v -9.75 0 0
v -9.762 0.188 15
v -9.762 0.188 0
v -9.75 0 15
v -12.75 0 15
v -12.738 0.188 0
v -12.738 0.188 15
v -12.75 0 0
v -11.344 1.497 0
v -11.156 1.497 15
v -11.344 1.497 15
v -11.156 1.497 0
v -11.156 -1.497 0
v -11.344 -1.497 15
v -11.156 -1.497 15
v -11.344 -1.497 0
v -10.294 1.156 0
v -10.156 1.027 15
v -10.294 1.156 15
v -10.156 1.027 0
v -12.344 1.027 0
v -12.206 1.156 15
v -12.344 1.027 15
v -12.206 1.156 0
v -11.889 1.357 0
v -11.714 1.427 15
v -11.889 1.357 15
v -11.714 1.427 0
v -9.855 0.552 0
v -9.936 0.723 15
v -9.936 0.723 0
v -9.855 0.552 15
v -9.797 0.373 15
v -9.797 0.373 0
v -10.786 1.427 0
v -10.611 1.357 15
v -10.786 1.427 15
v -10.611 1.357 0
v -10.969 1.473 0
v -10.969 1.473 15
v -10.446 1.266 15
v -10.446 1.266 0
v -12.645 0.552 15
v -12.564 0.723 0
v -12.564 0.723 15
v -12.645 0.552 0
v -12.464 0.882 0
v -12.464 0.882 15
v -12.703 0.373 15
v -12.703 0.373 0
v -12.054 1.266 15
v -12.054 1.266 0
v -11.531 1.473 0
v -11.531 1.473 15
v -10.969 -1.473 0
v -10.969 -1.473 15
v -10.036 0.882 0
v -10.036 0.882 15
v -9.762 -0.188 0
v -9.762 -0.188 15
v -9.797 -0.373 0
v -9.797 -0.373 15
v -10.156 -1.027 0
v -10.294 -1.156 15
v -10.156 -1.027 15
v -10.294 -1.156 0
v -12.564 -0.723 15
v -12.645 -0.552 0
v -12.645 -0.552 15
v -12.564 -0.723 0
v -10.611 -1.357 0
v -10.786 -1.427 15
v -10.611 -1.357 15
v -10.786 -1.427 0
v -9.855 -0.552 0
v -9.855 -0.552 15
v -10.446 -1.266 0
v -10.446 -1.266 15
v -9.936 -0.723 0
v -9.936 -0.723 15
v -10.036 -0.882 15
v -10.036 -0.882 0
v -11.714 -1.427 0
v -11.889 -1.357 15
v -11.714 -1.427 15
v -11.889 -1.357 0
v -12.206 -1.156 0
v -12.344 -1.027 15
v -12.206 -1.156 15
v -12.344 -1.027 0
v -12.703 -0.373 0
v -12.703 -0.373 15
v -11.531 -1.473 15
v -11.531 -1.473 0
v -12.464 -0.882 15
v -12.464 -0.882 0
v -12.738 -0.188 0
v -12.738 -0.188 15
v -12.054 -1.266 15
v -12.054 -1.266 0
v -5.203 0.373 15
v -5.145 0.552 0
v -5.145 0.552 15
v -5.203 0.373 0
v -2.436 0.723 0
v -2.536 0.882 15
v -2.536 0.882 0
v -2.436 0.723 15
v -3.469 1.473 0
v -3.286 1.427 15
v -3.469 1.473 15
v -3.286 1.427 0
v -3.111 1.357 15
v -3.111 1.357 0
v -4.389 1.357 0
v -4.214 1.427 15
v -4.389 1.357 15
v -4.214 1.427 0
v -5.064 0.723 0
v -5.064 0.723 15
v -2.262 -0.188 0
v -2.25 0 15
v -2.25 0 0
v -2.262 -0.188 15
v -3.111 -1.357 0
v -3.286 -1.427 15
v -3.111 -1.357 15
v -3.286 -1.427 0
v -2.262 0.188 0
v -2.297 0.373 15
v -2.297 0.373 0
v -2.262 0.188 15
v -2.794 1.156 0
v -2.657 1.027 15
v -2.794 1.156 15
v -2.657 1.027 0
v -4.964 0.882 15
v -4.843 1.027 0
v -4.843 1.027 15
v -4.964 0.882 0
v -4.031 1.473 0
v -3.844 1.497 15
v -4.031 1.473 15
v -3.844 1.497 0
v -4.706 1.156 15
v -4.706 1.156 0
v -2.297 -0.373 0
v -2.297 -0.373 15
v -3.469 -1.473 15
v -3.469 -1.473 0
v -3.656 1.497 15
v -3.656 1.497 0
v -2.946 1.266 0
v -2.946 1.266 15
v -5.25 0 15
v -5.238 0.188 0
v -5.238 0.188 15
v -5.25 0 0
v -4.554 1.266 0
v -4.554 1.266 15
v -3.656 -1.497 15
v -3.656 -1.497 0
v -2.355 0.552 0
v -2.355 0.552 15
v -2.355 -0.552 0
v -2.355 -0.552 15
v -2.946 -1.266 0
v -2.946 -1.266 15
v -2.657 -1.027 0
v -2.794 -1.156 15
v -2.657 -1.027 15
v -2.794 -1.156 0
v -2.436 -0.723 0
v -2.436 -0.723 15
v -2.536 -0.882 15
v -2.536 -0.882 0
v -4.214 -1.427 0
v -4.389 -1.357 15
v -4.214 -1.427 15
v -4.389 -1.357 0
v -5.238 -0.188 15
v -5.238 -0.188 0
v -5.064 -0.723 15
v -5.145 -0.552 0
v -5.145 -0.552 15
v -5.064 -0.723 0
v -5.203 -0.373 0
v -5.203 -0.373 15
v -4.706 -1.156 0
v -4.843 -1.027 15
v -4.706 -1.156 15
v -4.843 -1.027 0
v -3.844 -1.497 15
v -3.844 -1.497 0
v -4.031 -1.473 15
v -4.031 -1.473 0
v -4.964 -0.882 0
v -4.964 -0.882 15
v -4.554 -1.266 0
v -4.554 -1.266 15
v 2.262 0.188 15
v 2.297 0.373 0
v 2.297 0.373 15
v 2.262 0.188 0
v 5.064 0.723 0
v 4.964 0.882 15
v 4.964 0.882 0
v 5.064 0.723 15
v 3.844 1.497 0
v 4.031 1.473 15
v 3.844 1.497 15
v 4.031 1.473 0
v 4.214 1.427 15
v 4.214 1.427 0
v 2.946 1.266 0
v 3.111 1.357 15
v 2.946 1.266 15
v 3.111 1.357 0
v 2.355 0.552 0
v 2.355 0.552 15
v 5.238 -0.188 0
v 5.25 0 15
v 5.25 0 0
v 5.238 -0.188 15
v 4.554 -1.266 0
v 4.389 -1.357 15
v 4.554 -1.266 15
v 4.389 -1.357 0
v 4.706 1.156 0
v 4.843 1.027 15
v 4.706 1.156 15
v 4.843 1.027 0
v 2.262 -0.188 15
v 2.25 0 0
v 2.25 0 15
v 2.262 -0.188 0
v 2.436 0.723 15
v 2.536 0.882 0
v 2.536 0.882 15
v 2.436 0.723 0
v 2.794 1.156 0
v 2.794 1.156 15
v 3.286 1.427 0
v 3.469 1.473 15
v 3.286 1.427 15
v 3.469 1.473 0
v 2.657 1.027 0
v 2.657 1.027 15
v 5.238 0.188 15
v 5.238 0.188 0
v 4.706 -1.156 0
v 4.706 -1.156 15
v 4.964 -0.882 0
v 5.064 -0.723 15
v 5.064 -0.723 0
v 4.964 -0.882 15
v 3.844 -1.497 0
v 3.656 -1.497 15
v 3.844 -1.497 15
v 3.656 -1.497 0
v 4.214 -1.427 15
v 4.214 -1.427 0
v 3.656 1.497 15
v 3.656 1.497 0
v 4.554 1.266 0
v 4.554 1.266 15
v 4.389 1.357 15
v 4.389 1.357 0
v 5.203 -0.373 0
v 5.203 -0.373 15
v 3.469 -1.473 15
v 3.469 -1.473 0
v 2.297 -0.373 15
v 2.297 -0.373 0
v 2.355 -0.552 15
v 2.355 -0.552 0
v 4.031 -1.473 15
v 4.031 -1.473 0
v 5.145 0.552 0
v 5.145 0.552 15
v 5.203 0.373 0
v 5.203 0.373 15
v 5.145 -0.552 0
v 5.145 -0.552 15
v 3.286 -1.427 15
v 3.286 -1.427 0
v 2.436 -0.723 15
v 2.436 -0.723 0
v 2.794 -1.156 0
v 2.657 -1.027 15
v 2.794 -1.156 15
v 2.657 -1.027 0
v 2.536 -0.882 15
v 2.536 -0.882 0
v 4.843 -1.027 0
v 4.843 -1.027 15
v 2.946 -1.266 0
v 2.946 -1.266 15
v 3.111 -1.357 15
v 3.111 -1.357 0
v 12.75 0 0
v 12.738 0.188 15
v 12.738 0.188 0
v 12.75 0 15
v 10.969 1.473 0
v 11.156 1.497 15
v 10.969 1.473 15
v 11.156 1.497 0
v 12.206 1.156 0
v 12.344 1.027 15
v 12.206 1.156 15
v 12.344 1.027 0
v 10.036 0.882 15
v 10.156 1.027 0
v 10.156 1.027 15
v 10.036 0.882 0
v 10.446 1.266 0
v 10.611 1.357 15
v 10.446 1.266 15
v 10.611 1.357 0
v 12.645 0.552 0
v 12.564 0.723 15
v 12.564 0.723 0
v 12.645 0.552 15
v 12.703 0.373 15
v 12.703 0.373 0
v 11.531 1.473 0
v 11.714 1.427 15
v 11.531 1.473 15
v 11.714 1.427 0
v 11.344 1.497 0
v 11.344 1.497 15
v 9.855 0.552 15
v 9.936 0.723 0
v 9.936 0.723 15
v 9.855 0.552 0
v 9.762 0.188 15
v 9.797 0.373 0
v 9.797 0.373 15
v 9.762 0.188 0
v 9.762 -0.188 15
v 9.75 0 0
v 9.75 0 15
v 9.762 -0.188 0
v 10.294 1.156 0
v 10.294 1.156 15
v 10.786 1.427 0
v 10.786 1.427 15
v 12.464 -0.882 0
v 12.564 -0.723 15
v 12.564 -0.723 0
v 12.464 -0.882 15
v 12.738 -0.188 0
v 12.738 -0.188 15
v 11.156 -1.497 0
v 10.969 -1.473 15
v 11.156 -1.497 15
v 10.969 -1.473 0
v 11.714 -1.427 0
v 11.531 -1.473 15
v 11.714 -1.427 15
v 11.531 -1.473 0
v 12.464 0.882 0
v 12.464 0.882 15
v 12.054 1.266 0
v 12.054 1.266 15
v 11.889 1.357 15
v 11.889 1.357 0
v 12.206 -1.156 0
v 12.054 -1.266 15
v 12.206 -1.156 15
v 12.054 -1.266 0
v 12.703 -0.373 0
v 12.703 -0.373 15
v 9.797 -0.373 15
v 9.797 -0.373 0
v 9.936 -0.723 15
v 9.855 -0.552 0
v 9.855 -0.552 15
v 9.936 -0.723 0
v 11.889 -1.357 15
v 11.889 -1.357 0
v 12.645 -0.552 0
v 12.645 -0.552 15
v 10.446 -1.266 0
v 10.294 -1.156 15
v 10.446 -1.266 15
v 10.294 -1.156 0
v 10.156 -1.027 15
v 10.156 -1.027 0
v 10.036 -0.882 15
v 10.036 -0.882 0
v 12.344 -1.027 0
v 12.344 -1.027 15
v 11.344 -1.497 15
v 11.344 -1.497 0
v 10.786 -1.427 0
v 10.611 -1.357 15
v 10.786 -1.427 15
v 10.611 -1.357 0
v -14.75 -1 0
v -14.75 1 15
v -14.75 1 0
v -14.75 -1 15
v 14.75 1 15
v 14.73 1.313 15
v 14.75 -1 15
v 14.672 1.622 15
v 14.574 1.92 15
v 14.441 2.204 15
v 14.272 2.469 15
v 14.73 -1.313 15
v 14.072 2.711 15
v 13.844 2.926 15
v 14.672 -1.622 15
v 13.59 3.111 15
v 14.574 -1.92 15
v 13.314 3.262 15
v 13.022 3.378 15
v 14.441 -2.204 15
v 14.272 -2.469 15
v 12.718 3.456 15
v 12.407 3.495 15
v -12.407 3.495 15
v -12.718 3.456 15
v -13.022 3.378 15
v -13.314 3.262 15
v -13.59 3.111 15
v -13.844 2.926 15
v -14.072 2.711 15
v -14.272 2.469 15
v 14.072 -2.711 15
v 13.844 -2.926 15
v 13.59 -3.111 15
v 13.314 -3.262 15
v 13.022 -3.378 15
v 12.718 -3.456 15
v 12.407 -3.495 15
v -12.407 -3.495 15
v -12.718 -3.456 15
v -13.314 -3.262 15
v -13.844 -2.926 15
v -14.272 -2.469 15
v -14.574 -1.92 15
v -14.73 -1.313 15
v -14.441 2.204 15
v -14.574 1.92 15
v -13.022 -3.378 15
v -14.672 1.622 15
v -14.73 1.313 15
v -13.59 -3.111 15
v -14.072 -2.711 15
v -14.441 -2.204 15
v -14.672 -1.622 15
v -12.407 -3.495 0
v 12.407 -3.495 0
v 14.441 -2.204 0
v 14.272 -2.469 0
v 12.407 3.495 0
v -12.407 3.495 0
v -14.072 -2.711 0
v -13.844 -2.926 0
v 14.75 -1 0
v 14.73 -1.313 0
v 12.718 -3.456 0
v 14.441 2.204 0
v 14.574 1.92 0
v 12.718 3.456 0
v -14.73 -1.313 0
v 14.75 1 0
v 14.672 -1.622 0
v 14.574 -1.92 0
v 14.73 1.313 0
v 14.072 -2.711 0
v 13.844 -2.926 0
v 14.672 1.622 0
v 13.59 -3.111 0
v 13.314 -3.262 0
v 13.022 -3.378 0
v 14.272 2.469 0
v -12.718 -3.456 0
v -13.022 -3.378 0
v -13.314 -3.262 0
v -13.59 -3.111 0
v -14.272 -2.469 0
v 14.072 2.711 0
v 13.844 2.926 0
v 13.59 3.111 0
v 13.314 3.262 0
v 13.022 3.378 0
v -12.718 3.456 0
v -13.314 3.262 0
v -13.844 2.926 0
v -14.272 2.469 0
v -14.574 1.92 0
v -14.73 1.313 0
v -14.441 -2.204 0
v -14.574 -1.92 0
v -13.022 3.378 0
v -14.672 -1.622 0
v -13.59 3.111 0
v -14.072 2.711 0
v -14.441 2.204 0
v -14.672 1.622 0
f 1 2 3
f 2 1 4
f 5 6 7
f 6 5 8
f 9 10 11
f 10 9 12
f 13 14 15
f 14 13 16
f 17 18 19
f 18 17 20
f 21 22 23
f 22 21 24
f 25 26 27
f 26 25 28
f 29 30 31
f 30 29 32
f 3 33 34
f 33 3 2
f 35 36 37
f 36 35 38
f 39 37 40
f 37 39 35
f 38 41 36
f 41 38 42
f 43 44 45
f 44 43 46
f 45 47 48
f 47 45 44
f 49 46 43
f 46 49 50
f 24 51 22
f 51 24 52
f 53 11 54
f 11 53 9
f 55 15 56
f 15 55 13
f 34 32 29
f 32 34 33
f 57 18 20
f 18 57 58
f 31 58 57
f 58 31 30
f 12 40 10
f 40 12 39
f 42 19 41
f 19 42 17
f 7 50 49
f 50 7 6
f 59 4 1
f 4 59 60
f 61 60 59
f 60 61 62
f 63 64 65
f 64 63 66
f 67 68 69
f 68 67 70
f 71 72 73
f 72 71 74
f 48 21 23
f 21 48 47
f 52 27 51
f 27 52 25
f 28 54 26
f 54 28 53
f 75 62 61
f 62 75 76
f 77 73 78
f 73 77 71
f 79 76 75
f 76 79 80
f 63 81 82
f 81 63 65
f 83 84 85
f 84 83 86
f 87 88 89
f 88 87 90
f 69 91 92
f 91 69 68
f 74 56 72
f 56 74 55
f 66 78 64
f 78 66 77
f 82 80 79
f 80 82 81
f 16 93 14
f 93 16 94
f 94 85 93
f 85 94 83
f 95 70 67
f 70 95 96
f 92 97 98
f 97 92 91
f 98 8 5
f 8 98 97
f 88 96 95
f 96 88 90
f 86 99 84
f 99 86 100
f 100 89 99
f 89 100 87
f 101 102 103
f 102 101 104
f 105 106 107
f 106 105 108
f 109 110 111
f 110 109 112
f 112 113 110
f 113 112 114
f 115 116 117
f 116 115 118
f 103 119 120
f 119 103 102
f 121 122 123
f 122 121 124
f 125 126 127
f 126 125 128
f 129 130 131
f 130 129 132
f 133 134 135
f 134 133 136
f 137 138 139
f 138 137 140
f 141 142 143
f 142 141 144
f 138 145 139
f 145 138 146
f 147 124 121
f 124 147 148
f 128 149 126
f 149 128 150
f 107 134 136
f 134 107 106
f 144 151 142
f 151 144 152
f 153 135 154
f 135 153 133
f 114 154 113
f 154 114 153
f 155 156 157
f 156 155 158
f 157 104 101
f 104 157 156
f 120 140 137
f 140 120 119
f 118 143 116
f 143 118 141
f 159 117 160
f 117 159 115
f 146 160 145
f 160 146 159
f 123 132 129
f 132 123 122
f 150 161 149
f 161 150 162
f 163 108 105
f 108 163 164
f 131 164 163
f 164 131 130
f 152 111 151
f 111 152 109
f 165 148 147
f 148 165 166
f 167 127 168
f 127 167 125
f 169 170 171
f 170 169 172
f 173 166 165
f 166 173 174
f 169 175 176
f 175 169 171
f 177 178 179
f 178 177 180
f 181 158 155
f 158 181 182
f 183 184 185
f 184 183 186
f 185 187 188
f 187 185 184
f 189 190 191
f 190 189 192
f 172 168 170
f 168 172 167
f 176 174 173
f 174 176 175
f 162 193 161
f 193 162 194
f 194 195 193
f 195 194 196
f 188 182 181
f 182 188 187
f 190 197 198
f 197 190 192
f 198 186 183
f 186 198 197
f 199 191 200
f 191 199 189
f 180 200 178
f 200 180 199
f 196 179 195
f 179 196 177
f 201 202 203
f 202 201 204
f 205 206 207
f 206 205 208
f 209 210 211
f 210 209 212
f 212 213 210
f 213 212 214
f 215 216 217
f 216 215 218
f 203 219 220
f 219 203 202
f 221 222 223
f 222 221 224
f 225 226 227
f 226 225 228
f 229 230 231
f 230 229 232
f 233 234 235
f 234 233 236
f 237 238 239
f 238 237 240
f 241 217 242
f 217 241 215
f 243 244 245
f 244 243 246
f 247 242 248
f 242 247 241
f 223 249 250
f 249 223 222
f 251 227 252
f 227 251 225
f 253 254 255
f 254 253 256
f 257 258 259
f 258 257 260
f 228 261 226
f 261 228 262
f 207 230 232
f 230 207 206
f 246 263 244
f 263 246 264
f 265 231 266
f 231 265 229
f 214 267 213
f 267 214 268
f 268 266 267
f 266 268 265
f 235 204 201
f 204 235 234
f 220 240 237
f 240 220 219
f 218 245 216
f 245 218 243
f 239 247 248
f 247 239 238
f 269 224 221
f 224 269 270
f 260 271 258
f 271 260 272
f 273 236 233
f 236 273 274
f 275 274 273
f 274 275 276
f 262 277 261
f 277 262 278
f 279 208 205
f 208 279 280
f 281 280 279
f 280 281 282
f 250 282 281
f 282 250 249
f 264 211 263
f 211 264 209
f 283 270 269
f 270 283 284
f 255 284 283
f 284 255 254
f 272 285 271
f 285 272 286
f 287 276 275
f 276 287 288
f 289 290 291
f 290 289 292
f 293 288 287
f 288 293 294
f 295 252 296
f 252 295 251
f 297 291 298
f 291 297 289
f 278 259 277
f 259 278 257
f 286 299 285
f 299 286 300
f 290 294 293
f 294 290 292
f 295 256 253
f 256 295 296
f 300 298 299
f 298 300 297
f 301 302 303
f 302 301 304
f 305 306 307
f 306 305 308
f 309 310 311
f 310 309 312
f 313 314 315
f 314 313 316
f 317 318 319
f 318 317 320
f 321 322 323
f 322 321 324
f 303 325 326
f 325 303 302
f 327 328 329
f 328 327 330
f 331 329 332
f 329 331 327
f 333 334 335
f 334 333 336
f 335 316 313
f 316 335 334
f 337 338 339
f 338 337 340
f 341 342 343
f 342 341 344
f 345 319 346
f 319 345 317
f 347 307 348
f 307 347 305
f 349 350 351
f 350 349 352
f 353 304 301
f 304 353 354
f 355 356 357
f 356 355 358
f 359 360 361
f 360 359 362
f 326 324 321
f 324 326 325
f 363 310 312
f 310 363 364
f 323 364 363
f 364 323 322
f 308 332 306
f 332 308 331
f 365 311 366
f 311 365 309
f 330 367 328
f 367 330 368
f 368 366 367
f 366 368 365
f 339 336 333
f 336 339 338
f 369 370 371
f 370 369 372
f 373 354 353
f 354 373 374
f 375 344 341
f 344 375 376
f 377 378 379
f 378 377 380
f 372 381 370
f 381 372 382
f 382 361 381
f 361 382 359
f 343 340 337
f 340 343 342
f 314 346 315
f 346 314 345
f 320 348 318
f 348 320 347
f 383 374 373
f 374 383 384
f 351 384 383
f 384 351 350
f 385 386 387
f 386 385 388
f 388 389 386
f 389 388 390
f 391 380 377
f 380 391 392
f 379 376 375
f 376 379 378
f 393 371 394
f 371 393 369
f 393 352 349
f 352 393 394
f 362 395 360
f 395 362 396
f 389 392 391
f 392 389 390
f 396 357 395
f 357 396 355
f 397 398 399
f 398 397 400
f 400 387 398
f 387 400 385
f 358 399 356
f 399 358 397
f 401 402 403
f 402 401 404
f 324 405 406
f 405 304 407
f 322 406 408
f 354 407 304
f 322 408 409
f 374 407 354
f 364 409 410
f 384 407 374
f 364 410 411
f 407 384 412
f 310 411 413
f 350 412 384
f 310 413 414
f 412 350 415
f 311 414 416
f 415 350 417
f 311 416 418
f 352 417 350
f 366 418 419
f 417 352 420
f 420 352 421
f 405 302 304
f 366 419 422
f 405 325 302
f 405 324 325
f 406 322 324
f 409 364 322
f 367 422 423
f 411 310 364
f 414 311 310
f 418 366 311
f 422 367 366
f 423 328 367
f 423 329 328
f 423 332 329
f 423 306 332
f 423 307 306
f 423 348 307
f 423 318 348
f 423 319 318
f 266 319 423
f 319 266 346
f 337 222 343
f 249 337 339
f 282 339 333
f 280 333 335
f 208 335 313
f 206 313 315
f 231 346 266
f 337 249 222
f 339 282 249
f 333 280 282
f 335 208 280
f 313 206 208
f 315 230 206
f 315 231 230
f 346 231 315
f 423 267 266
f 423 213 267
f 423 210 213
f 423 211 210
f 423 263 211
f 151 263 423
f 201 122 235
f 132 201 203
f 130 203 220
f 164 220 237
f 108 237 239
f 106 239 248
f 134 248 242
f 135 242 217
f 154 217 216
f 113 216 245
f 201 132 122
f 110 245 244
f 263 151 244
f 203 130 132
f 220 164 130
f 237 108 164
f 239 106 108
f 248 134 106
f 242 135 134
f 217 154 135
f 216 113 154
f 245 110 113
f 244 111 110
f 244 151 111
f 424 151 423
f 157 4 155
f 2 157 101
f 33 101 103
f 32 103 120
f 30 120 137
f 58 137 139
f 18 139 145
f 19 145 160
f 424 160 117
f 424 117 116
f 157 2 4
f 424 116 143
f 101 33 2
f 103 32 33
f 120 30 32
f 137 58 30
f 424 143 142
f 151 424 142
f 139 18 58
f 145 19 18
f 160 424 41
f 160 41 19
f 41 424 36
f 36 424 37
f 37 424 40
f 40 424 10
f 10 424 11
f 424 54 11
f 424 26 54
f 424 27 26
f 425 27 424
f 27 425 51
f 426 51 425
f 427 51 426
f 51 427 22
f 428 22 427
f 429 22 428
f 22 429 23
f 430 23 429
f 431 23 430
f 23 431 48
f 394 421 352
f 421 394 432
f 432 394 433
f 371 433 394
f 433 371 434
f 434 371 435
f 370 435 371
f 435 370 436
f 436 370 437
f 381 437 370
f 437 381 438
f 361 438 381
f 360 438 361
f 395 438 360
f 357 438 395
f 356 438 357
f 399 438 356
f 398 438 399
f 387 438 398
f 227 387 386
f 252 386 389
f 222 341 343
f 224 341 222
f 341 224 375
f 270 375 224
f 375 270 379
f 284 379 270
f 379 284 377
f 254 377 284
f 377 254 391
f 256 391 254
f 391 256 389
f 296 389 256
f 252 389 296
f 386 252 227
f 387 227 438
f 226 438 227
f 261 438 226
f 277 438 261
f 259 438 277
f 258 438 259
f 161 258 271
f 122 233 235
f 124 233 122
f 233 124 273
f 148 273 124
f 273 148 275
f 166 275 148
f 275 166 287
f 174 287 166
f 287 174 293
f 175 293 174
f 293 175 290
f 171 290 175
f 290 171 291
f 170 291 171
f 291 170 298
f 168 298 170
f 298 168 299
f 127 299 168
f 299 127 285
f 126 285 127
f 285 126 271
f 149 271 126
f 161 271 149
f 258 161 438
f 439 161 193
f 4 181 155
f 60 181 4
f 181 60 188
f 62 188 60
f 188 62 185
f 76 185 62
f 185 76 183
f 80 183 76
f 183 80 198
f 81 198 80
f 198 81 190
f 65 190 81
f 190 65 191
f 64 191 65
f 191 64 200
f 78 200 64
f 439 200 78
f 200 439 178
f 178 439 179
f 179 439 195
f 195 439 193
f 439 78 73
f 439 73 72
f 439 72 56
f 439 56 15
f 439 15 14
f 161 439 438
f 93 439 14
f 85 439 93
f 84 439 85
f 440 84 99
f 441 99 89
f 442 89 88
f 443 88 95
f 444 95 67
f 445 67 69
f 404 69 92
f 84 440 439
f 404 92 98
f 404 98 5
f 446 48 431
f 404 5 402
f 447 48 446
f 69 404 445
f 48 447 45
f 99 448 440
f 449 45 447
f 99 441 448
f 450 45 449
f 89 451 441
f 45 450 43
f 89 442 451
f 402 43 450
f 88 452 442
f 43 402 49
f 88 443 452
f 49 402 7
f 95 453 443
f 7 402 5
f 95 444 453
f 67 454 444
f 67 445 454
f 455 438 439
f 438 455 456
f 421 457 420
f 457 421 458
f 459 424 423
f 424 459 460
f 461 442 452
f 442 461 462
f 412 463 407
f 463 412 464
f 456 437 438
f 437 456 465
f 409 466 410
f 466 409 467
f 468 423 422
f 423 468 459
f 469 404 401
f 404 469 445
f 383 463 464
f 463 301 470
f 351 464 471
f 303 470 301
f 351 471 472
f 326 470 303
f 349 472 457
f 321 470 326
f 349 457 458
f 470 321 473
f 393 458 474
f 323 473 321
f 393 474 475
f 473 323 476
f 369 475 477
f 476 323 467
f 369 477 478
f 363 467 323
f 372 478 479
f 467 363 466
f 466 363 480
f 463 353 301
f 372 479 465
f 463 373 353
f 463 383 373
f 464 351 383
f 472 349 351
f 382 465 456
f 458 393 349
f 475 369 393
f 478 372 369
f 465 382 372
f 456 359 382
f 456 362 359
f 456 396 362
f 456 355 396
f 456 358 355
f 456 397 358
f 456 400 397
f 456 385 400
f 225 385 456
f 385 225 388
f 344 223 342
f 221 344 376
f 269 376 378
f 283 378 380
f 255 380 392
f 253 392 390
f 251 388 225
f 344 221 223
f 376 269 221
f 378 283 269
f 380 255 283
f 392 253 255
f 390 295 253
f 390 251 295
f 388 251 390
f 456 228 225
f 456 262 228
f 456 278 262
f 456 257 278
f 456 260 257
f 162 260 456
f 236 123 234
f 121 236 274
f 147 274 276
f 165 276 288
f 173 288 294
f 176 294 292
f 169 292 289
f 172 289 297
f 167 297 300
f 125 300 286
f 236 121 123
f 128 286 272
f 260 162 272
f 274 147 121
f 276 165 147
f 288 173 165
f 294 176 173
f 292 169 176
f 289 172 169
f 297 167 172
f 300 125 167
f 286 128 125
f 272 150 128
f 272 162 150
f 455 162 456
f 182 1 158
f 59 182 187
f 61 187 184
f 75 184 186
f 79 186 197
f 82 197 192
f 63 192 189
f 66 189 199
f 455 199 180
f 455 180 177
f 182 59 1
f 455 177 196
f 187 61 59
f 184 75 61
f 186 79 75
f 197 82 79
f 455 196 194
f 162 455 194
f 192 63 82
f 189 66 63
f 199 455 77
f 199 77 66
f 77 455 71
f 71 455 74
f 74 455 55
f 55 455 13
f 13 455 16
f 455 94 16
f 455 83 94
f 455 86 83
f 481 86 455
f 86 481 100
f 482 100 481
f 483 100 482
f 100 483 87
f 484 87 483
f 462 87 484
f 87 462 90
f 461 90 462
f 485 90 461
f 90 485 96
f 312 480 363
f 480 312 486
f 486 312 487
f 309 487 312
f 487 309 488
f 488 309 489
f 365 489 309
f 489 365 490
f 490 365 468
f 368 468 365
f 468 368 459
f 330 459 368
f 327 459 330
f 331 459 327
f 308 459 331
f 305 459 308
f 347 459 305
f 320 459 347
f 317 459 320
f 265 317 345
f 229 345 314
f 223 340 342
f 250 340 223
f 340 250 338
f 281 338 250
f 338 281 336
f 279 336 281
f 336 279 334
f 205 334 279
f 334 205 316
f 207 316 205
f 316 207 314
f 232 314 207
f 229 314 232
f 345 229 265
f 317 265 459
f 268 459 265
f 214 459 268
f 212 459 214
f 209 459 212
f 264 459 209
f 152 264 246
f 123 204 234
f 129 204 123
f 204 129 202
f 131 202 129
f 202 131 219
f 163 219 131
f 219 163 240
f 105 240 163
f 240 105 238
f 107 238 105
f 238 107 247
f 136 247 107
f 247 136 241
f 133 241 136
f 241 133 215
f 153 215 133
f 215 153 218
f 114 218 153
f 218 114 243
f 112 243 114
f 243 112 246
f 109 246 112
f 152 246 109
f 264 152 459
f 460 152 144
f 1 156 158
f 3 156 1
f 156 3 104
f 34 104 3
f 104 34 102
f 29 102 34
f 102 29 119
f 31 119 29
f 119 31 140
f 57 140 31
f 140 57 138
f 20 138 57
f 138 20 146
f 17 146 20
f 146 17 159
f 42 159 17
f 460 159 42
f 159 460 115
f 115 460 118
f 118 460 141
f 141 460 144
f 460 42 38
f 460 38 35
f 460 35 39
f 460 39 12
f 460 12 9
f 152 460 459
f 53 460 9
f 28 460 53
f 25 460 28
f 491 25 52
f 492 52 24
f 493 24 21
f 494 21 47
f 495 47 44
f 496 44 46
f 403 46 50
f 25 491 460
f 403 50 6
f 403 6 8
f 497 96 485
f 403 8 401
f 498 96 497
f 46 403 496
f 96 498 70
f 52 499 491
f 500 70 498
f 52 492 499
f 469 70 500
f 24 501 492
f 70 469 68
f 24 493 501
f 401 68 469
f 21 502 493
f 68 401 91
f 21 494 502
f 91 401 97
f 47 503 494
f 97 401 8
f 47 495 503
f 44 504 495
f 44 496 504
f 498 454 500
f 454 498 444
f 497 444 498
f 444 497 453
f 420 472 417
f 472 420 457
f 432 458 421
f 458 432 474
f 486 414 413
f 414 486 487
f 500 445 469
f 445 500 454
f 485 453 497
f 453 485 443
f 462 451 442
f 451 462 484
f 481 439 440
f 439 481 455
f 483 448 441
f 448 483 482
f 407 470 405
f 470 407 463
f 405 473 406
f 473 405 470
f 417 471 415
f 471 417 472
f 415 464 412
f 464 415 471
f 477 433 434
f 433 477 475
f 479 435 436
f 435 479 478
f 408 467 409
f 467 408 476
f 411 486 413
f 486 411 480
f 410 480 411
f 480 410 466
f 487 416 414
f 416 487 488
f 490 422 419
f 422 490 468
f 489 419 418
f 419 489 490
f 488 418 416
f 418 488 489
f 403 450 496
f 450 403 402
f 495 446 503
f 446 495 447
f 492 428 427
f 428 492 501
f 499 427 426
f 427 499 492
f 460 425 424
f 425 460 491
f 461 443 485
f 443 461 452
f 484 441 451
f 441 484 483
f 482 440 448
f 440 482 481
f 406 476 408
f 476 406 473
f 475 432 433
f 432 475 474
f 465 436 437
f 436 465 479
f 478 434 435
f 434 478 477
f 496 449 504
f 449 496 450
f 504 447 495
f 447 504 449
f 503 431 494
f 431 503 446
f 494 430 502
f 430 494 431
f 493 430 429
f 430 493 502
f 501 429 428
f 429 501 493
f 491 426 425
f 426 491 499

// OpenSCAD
$fn = 50;


difference() {
	union() {
		translate(v = [0, 0, 0]) {
			rotate(a = [0, 0, 0]) {
				hull() {
					translate(v = [-12.2500000000, 1.0000000000, 0]) {
						rotate(a = [0, 0, 0]) {
							translate(v = [0, 0, 0]) {
								rotate(a = [0, 0, 0]) {
									cylinder(h = 15, r = 2.5000000000);
								}
							}
						}
					}
					translate(v = [12.2500000000, 1.0000000000, 0]) {
						rotate(a = [0, 0, 0]) {
							translate(v = [0, 0, 0]) {
								rotate(a = [0, 0, 0]) {
									cylinder(h = 15, r = 2.5000000000);
								}
							}
						}
					}
					translate(v = [-12.2500000000, -1.0000000000, 0]) {
						rotate(a = [0, 0, 0]) {
							translate(v = [0, 0, 0]) {
								rotate(a = [0, 0, 0]) {
									cylinder(h = 15, r = 2.5000000000);
								}
							}
						}
					}
					translate(v = [12.2500000000, -1.0000000000, 0]) {
						rotate(a = [0, 0, 0]) {
							translate(v = [0, 0, 0]) {
								rotate(a = [0, 0, 0]) {
									cylinder(h = 15, r = 2.5000000000);
								}
							}
						}
					}
				}
			}
		}
	}
	union() {
		translate(v = [-11.2500000000, 0.0000000000, 0]) {
			rotate(a = [0, 0, 0]) {
				translate(v = [0, 0, -50]) {
					rotate(a = [0, 0, 0]) {
						cylinder(h = 100, r = 1.5000000000);
					}
				}
			}
		}
		translate(v = [-3.7500000000, 0.0000000000, 0]) {
			rotate(a = [0, 0, 0]) {
				translate(v = [0, 0, -50]) {
					rotate(a = [0, 0, 0]) {
						cylinder(h = 100, r = 1.5000000000);
					}
				}
			}
		}
		translate(v = [3.7500000000, 0.0000000000, 0]) {
			rotate(a = [0, 0, 0]) {
				translate(v = [0, 0, -50]) {
					rotate(a = [0, 0, 0]) {
						cylinder(h = 100, r = 1.5000000000);
					}
				}
			}
		}
		translate(v = [11.2500000000, 0.0000000000, 0]) {
			rotate(a = [0, 0, 0]) {
				translate(v = [0, 0, -50]) {
					rotate(a = [0, 0, 0]) {
						cylinder(h = 100, r = 1.5000000000);
					}
				}
			}
		}
	}
}
